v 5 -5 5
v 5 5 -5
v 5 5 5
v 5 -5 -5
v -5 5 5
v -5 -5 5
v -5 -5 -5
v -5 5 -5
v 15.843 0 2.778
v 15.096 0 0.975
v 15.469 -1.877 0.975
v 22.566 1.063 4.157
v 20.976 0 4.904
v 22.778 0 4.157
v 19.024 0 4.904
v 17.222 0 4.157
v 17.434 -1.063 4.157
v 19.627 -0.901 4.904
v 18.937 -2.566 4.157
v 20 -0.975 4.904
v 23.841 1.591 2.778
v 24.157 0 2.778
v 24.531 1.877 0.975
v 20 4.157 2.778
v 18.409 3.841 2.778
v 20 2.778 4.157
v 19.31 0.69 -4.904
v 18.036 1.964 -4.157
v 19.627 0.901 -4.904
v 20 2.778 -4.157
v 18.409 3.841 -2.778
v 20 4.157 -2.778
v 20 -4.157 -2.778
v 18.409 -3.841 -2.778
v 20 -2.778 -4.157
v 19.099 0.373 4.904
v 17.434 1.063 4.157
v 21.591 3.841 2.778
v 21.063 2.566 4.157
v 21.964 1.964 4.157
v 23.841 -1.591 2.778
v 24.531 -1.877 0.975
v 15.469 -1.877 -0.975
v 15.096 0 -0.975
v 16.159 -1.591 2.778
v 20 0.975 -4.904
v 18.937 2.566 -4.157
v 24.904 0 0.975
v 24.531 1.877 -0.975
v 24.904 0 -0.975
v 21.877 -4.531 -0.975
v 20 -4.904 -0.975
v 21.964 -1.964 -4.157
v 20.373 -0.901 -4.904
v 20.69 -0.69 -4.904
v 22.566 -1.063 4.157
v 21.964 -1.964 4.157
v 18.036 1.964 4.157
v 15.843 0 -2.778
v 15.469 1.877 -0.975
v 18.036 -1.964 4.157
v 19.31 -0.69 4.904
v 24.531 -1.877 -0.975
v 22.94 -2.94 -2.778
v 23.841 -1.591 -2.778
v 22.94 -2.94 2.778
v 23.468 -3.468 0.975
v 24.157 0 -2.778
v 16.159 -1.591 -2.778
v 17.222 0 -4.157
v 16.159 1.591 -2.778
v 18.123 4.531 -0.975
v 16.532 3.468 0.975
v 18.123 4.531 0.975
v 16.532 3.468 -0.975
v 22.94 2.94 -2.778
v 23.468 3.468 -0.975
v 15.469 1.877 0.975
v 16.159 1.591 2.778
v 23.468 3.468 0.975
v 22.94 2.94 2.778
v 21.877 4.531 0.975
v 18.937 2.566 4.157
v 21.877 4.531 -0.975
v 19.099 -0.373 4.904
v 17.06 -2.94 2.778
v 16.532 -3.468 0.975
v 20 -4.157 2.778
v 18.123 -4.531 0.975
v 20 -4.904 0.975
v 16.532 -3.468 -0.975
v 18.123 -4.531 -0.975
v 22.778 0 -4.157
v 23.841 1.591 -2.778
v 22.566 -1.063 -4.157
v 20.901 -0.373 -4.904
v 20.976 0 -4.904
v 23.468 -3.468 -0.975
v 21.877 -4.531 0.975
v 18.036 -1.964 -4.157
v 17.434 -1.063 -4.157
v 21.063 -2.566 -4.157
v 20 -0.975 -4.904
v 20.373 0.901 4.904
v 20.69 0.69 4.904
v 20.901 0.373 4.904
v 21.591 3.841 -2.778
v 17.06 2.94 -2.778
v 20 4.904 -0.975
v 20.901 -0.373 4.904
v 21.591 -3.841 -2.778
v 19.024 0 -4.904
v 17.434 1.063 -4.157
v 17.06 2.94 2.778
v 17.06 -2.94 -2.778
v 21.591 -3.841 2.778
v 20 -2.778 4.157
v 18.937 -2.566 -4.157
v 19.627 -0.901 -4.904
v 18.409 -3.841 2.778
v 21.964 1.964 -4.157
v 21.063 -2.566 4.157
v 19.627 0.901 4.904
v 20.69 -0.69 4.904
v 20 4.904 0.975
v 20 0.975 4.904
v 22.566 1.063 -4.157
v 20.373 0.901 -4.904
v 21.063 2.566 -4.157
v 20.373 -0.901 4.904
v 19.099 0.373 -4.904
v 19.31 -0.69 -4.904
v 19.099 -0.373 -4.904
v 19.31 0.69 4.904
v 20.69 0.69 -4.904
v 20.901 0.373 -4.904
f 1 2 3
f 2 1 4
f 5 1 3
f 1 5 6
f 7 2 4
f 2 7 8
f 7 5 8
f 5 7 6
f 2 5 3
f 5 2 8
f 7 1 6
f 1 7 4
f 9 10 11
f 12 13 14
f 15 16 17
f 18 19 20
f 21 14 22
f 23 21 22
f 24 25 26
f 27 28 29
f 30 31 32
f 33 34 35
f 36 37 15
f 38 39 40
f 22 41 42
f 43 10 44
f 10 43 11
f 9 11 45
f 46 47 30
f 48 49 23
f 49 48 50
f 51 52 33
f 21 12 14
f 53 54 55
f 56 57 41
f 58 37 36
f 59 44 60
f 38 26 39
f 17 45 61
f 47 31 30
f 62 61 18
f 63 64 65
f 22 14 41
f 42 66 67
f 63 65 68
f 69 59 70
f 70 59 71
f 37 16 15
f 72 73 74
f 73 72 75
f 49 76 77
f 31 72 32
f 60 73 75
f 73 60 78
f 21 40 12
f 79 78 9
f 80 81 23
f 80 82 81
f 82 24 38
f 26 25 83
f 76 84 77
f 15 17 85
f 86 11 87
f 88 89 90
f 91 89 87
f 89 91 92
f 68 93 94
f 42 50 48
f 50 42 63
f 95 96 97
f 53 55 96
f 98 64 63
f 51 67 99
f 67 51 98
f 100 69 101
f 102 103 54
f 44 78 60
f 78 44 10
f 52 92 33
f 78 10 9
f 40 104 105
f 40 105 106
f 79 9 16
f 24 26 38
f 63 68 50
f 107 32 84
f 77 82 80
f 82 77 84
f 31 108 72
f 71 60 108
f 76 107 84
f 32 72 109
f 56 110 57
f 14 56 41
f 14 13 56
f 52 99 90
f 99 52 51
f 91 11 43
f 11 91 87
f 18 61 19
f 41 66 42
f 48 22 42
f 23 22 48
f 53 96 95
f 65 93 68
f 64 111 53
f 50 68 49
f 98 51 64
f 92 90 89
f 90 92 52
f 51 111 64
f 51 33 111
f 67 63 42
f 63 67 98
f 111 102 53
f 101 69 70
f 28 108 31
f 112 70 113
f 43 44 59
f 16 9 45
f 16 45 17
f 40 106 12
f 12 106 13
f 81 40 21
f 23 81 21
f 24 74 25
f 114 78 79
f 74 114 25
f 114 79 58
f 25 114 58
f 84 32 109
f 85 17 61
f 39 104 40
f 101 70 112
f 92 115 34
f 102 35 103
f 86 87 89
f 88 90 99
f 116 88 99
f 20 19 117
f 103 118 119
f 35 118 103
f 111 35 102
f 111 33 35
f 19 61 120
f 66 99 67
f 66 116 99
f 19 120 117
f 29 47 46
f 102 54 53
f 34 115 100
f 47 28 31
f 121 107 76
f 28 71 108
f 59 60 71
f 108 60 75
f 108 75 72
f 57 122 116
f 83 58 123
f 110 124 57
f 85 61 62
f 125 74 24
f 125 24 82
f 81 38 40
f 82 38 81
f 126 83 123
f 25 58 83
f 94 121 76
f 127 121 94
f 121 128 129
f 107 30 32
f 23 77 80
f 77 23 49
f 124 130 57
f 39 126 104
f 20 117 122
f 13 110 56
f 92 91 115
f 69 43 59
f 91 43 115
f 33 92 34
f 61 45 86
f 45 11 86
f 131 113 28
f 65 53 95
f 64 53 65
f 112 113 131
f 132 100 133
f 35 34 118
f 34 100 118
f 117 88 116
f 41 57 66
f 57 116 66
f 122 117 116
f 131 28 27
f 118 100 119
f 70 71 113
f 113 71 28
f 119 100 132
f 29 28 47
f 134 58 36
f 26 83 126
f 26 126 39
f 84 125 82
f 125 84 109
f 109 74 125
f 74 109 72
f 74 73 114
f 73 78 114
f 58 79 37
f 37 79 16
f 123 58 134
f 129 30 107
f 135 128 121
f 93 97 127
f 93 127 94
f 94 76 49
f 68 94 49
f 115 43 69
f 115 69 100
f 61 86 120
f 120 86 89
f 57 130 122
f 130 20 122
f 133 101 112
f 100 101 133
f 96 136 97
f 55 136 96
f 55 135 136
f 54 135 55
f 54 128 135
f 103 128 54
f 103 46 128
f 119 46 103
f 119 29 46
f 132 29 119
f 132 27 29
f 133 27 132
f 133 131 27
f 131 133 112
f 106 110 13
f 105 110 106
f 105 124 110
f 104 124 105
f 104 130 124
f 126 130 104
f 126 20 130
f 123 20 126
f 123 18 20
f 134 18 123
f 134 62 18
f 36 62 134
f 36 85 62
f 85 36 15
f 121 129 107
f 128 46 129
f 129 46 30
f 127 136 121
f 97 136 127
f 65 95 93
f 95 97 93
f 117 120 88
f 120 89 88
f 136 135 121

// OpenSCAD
// A cube
cube(10, center=true);

// A completely separate sphere - this SHOULD make it non-watertight
// because it's not a single manifold volume.
translate([20, 0, 0]) sphere(5); 
